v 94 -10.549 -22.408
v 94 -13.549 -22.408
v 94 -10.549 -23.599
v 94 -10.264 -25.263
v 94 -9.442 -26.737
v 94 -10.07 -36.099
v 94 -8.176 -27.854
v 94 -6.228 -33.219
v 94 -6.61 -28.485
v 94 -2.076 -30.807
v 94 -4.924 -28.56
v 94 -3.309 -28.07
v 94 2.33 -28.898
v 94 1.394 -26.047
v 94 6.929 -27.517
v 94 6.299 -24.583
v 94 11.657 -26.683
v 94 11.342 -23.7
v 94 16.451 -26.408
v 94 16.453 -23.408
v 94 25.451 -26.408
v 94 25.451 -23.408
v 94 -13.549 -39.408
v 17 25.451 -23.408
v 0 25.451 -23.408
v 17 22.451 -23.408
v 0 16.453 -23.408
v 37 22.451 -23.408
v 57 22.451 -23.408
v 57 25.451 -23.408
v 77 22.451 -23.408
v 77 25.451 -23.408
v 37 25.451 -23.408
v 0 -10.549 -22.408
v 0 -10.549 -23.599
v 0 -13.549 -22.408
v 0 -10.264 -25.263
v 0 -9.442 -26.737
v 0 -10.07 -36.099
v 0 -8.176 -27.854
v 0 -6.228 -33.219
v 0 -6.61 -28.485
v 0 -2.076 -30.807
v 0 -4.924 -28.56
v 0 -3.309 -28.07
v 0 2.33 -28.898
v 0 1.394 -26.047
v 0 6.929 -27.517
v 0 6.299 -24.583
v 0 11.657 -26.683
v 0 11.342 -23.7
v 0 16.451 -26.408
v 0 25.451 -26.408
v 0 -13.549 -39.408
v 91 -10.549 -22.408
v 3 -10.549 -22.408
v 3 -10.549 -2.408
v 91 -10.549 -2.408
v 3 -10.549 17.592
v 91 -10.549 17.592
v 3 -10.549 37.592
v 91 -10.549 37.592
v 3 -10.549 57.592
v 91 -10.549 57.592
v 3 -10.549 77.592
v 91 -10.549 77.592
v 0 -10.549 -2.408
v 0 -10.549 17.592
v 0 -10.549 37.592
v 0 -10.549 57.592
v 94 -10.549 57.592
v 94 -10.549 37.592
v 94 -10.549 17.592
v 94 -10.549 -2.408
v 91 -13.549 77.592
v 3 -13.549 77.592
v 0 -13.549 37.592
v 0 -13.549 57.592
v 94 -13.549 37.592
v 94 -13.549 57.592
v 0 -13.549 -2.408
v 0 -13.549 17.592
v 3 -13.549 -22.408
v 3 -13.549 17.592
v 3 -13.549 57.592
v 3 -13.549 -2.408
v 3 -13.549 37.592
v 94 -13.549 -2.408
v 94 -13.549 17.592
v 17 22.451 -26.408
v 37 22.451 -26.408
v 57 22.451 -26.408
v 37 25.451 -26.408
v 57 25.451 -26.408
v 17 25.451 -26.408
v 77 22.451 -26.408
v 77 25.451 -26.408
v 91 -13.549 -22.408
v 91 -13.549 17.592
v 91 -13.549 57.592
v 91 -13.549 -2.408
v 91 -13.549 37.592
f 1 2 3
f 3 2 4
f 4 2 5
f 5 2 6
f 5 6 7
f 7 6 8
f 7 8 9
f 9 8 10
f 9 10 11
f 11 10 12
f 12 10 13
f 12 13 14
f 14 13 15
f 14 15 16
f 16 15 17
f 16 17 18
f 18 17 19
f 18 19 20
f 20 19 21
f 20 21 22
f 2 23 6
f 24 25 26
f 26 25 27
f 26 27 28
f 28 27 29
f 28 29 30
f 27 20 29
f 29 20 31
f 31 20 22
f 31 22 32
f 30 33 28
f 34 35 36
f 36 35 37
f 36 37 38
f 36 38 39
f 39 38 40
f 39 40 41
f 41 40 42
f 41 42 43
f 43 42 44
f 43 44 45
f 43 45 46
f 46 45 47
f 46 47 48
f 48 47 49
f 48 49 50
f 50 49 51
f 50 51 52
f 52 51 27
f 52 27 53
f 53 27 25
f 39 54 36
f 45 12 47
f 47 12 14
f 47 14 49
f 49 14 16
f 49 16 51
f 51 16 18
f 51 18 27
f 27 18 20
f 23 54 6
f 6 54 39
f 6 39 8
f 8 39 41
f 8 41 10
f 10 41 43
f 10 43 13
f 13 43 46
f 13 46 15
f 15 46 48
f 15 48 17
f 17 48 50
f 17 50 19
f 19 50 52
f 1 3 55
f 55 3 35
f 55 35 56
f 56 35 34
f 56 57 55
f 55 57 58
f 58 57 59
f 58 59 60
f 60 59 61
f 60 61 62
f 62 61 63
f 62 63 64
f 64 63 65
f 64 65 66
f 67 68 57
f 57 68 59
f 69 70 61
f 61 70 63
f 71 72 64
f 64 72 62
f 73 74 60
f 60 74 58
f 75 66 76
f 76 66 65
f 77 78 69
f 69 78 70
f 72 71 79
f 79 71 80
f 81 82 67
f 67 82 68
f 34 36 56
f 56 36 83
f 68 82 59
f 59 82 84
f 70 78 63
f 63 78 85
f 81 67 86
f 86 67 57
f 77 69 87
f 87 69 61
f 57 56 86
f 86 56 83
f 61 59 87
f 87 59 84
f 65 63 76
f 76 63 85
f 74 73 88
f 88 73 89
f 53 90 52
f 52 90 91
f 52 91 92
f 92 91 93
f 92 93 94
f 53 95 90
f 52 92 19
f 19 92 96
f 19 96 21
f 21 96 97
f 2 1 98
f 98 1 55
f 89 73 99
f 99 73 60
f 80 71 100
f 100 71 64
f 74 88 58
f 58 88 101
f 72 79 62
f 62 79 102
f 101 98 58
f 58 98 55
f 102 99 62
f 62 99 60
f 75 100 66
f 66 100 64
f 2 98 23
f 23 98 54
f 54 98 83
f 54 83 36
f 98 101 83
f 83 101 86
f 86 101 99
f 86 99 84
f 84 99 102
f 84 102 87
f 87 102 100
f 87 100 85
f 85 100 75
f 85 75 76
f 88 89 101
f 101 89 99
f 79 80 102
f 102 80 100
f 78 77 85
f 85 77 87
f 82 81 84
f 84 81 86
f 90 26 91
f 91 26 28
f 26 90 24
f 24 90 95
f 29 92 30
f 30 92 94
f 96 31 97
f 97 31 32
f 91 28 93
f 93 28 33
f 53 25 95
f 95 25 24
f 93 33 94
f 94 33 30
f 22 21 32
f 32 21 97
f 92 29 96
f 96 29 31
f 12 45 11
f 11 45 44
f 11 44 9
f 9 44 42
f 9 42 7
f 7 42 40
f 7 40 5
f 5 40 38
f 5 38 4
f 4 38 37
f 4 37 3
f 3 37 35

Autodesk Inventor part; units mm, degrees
ref_plane "YZ Plane" through (0, 0, 0) normal (1, 0, 0) x (0, 1, 0)
ref_plane "XZ Plane" through (0, 0, 0) normal (0, 1, 0) x (-1, 0, 0)
ref_plane "XY Plane" through (0, 0, 0) normal (0, 0, 1) x (1, 0, 0)
sketch "Sketch1" plane through (0, 0, 0) normal (1, 0, 0) x (0, 1, 0)
  arc A0 (16.4511, -26.4081) -> (-13.5489, -39.4081) centre (16.4011, -67.4081) ccw
  line L0 (22.4511, -26.4081) -> (16.4511, -26.4081)
  line L1 (-13.5489, 77.5919) -> (-13.5489, -39.4081)
  line L2 (-10.5489, 77.5919) -> (-10.5489, -32.6274)
  arc A1 (16.4529, -23.4081) -> (-10.5489, -32.6274) centre (16.4011, -67.4081) ccw
  line L3 (16.4529, -23.4081) -> (22.4511, -23.4081)
  line L4 (-10.5489, 77.5919) -> (-13.5489, 77.5919)
  line L5 (22.4511, -23.4081) -> (22.4511, -26.4081)
  dimension "d0" = 3
extrude "Extrusion1" add sketch "Sketch1" along normal blind 94
sketch "Sketch2" plane through (0, 0, 0) normal (-1, 0, 0) x (0, 0, 1)
  line L0 (-32.6274, -10.5489) -> (77.5919, -10.5489) projected
  arc A0 (-32.6274, -10.5489) -> (-23.4081, 16.4529) centre (-67.4081, 16.4011) ccw projected
  line L1 (-23.4081, 22.4511) -> (-23.4081, 16.4529) projected
  line L2 (-26.4081, 22.4511) -> (-23.4081, 22.4511) projected
  line L3 (-26.4081, 16.4511) -> (-26.4081, 22.4511) projected
  arc A1 (-39.4081, -13.5489) -> (-26.4081, 16.4511) centre (-67.4081, 16.4011) ccw projected
  line L4 (77.5919, -13.5489) -> (-39.4081, -13.5489) projected
  line L5 (77.5919, -10.5489) -> (77.5919, -13.5489) projected
  line L6 (77.5919, -10.5489) -> (57.5919, -10.5489)
  line L7 (57.5919, -10.5489) -> (37.5919, -10.5489)
  line L8 (37.5919, -10.5489) -> (17.5919, -10.5489)
  line L9 (17.5919, -10.5489) -> (-2.4081, -10.5489)
  line L10 (-2.4081, -10.5489) -> (-22.4081, -10.5489)
  line L11 (-22.4081, -10.5489) -> (-22.4081, -13.5489)
  line L12 (-2.4081, -10.5489) -> (-2.4081, -13.5489)
  line L13 (17.5919, -10.5489) -> (17.5919, -13.5489)
  line L14 (37.5919, -10.5489) -> (37.5919, -13.5489)
  line L15 (57.5919, -10.5489) -> (57.5919, -13.5489)
  line L16 (77.5919, -13.5489) -> (-22.4081, -13.5489)
  line L17 (77.5919, -10.5489) -> (-22.4081, -10.5489)
  dimension "d3" = 20
  dimension "d4" = 20
  dimension "d5" = 20
  dimension "d6" = 20
  dimension "d7" = 20
extrude "Extrusion2" cut sketch "Sketch2" against normal blind 3 contours L0 L12 L4 L11 | L0 L14 L4 L13 | L0 L5 L4 L15
sketch "Sketch3" plane through (94, 0, 0) normal (1, 0, 0) x (0, 0, -1)
  line L0 (32.6274, -10.5489) -> (-77.5919, -10.5489) projected
  line L1 (-77.5919, -10.5489) -> (-77.5919, -13.5489) projected
  line L2 (-77.5919, -13.5489) -> (39.4081, -13.5489) projected
  arc A0 (26.4081, 16.4511) -> (39.4081, -13.5489) centre (67.4081, 16.4011) ccw projected
  line L3 (26.4081, 16.4511) -> (26.4081, 22.4511) projected
  line L4 (26.4081, 22.4511) -> (23.4081, 22.4511) projected
  line L5 (23.4081, 22.4511) -> (23.4081, 16.4529) projected
  arc A1 (23.4081, 16.4529) -> (32.6274, -10.5489) centre (67.4081, 16.4011) ccw projected
  line L6 (-77.5919, -13.5489) -> (-57.5919, -13.5489)
  line L7 (-57.5919, -13.5489) -> (-37.5919, -13.5489)
  line L8 (-37.5919, -13.5489) -> (-17.5919, -13.5489)
  line L9 (-17.5919, -13.5489) -> (2.4081, -13.5489)
  line L10 (2.4081, -13.5489) -> (22.4081, -13.5489)
  line L11 (22.4081, -13.5489) -> (22.4081, -10.5489)
  line L12 (2.4081, -13.5489) -> (2.4081, -10.5489)
  line L13 (-17.5919, -13.5489) -> (-17.5919, -10.5489)
  line L14 (-37.5919, -13.5489) -> (-37.5919, -10.5489)
  line L15 (-57.5919, -10.5489) -> (-57.5919, -13.5489)
  line L16 (-77.5919, -10.5489) -> (22.4081, -10.5489)
  line L17 (-77.5919, -13.5489) -> (22.4081, -13.5489)
  dimension "d10" = 20
  dimension "d11" = 20
  dimension "d12" = 20
  dimension "d13" = 20
  dimension "d14" = 20
extrude "Extrusion3" cut sketch "Sketch3" against normal blind 3 contours L11 L2 L12 L0 | L13 L2 L14 L0 | L15 L2 L1 L0
sketch "Sketch4" plane through (0, 22.4511, -23.4081) normal (0, 1, 0) x (1, 0, 0)
  line L0 (0, 3) -> (0, 0) projected
  line L1 (0, 0) -> (94, 0) projected
  line L2 (94, 3) -> (94, 0) projected
  line L3 (0, 3) -> (94, 3) projected
  line L4 (94, 3) -> (0, 3)
  line L5 (94, 3) -> (67, 3)
  line L6 (67, 3) -> (55, 3)
  line L7 (55, 3) -> (43, 3)
  line L8 (43, 3) -> (31, 3)
  line L9 (31, 3) -> (19, 3)
  line L10 (19, 3) -> (0, 3)
  line L11 (67, 3) -> (47, 3)
  line L12 (47, 3) -> (67, 3)
  line L13 (47, 3) -> (27, 3)
  line L14 (94, 3) -> (77, 3)
  line L15 (77, 3) -> (57, 3)
  line L16 (57, 3) -> (37, 3)
  line L17 (37, 3) -> (17, 3)
  line L18 (17, 3) -> (17, 0)
  line L19 (37, 3) -> (37, 0)
  line L20 (57, 3) -> (57, 0)
  line L21 (77, 3) -> (77, 0)
  line L22 (0, 0) -> (0, 3)
  line L23 (94, 0) -> (94, 3)
  line L24 (94, 0) -> (0, 0)
  line L25 (94, 3) -> (0, 3)
  dimension "d26" = 17
  dimension "d27" = 20
  dimension "d28" = 20
  dimension "d29" = 20
extrude "Extrusion4" add sketch "Sketch4" along normal blind 3 contours L3 L18 L1 L0 | L19 L3 L20 L1 | L21 L3 L2 L1
fillet "Fillet1" radius 5 1 edges at (47, -10.5489, -32.6274)
properties part number "bridge plate"
